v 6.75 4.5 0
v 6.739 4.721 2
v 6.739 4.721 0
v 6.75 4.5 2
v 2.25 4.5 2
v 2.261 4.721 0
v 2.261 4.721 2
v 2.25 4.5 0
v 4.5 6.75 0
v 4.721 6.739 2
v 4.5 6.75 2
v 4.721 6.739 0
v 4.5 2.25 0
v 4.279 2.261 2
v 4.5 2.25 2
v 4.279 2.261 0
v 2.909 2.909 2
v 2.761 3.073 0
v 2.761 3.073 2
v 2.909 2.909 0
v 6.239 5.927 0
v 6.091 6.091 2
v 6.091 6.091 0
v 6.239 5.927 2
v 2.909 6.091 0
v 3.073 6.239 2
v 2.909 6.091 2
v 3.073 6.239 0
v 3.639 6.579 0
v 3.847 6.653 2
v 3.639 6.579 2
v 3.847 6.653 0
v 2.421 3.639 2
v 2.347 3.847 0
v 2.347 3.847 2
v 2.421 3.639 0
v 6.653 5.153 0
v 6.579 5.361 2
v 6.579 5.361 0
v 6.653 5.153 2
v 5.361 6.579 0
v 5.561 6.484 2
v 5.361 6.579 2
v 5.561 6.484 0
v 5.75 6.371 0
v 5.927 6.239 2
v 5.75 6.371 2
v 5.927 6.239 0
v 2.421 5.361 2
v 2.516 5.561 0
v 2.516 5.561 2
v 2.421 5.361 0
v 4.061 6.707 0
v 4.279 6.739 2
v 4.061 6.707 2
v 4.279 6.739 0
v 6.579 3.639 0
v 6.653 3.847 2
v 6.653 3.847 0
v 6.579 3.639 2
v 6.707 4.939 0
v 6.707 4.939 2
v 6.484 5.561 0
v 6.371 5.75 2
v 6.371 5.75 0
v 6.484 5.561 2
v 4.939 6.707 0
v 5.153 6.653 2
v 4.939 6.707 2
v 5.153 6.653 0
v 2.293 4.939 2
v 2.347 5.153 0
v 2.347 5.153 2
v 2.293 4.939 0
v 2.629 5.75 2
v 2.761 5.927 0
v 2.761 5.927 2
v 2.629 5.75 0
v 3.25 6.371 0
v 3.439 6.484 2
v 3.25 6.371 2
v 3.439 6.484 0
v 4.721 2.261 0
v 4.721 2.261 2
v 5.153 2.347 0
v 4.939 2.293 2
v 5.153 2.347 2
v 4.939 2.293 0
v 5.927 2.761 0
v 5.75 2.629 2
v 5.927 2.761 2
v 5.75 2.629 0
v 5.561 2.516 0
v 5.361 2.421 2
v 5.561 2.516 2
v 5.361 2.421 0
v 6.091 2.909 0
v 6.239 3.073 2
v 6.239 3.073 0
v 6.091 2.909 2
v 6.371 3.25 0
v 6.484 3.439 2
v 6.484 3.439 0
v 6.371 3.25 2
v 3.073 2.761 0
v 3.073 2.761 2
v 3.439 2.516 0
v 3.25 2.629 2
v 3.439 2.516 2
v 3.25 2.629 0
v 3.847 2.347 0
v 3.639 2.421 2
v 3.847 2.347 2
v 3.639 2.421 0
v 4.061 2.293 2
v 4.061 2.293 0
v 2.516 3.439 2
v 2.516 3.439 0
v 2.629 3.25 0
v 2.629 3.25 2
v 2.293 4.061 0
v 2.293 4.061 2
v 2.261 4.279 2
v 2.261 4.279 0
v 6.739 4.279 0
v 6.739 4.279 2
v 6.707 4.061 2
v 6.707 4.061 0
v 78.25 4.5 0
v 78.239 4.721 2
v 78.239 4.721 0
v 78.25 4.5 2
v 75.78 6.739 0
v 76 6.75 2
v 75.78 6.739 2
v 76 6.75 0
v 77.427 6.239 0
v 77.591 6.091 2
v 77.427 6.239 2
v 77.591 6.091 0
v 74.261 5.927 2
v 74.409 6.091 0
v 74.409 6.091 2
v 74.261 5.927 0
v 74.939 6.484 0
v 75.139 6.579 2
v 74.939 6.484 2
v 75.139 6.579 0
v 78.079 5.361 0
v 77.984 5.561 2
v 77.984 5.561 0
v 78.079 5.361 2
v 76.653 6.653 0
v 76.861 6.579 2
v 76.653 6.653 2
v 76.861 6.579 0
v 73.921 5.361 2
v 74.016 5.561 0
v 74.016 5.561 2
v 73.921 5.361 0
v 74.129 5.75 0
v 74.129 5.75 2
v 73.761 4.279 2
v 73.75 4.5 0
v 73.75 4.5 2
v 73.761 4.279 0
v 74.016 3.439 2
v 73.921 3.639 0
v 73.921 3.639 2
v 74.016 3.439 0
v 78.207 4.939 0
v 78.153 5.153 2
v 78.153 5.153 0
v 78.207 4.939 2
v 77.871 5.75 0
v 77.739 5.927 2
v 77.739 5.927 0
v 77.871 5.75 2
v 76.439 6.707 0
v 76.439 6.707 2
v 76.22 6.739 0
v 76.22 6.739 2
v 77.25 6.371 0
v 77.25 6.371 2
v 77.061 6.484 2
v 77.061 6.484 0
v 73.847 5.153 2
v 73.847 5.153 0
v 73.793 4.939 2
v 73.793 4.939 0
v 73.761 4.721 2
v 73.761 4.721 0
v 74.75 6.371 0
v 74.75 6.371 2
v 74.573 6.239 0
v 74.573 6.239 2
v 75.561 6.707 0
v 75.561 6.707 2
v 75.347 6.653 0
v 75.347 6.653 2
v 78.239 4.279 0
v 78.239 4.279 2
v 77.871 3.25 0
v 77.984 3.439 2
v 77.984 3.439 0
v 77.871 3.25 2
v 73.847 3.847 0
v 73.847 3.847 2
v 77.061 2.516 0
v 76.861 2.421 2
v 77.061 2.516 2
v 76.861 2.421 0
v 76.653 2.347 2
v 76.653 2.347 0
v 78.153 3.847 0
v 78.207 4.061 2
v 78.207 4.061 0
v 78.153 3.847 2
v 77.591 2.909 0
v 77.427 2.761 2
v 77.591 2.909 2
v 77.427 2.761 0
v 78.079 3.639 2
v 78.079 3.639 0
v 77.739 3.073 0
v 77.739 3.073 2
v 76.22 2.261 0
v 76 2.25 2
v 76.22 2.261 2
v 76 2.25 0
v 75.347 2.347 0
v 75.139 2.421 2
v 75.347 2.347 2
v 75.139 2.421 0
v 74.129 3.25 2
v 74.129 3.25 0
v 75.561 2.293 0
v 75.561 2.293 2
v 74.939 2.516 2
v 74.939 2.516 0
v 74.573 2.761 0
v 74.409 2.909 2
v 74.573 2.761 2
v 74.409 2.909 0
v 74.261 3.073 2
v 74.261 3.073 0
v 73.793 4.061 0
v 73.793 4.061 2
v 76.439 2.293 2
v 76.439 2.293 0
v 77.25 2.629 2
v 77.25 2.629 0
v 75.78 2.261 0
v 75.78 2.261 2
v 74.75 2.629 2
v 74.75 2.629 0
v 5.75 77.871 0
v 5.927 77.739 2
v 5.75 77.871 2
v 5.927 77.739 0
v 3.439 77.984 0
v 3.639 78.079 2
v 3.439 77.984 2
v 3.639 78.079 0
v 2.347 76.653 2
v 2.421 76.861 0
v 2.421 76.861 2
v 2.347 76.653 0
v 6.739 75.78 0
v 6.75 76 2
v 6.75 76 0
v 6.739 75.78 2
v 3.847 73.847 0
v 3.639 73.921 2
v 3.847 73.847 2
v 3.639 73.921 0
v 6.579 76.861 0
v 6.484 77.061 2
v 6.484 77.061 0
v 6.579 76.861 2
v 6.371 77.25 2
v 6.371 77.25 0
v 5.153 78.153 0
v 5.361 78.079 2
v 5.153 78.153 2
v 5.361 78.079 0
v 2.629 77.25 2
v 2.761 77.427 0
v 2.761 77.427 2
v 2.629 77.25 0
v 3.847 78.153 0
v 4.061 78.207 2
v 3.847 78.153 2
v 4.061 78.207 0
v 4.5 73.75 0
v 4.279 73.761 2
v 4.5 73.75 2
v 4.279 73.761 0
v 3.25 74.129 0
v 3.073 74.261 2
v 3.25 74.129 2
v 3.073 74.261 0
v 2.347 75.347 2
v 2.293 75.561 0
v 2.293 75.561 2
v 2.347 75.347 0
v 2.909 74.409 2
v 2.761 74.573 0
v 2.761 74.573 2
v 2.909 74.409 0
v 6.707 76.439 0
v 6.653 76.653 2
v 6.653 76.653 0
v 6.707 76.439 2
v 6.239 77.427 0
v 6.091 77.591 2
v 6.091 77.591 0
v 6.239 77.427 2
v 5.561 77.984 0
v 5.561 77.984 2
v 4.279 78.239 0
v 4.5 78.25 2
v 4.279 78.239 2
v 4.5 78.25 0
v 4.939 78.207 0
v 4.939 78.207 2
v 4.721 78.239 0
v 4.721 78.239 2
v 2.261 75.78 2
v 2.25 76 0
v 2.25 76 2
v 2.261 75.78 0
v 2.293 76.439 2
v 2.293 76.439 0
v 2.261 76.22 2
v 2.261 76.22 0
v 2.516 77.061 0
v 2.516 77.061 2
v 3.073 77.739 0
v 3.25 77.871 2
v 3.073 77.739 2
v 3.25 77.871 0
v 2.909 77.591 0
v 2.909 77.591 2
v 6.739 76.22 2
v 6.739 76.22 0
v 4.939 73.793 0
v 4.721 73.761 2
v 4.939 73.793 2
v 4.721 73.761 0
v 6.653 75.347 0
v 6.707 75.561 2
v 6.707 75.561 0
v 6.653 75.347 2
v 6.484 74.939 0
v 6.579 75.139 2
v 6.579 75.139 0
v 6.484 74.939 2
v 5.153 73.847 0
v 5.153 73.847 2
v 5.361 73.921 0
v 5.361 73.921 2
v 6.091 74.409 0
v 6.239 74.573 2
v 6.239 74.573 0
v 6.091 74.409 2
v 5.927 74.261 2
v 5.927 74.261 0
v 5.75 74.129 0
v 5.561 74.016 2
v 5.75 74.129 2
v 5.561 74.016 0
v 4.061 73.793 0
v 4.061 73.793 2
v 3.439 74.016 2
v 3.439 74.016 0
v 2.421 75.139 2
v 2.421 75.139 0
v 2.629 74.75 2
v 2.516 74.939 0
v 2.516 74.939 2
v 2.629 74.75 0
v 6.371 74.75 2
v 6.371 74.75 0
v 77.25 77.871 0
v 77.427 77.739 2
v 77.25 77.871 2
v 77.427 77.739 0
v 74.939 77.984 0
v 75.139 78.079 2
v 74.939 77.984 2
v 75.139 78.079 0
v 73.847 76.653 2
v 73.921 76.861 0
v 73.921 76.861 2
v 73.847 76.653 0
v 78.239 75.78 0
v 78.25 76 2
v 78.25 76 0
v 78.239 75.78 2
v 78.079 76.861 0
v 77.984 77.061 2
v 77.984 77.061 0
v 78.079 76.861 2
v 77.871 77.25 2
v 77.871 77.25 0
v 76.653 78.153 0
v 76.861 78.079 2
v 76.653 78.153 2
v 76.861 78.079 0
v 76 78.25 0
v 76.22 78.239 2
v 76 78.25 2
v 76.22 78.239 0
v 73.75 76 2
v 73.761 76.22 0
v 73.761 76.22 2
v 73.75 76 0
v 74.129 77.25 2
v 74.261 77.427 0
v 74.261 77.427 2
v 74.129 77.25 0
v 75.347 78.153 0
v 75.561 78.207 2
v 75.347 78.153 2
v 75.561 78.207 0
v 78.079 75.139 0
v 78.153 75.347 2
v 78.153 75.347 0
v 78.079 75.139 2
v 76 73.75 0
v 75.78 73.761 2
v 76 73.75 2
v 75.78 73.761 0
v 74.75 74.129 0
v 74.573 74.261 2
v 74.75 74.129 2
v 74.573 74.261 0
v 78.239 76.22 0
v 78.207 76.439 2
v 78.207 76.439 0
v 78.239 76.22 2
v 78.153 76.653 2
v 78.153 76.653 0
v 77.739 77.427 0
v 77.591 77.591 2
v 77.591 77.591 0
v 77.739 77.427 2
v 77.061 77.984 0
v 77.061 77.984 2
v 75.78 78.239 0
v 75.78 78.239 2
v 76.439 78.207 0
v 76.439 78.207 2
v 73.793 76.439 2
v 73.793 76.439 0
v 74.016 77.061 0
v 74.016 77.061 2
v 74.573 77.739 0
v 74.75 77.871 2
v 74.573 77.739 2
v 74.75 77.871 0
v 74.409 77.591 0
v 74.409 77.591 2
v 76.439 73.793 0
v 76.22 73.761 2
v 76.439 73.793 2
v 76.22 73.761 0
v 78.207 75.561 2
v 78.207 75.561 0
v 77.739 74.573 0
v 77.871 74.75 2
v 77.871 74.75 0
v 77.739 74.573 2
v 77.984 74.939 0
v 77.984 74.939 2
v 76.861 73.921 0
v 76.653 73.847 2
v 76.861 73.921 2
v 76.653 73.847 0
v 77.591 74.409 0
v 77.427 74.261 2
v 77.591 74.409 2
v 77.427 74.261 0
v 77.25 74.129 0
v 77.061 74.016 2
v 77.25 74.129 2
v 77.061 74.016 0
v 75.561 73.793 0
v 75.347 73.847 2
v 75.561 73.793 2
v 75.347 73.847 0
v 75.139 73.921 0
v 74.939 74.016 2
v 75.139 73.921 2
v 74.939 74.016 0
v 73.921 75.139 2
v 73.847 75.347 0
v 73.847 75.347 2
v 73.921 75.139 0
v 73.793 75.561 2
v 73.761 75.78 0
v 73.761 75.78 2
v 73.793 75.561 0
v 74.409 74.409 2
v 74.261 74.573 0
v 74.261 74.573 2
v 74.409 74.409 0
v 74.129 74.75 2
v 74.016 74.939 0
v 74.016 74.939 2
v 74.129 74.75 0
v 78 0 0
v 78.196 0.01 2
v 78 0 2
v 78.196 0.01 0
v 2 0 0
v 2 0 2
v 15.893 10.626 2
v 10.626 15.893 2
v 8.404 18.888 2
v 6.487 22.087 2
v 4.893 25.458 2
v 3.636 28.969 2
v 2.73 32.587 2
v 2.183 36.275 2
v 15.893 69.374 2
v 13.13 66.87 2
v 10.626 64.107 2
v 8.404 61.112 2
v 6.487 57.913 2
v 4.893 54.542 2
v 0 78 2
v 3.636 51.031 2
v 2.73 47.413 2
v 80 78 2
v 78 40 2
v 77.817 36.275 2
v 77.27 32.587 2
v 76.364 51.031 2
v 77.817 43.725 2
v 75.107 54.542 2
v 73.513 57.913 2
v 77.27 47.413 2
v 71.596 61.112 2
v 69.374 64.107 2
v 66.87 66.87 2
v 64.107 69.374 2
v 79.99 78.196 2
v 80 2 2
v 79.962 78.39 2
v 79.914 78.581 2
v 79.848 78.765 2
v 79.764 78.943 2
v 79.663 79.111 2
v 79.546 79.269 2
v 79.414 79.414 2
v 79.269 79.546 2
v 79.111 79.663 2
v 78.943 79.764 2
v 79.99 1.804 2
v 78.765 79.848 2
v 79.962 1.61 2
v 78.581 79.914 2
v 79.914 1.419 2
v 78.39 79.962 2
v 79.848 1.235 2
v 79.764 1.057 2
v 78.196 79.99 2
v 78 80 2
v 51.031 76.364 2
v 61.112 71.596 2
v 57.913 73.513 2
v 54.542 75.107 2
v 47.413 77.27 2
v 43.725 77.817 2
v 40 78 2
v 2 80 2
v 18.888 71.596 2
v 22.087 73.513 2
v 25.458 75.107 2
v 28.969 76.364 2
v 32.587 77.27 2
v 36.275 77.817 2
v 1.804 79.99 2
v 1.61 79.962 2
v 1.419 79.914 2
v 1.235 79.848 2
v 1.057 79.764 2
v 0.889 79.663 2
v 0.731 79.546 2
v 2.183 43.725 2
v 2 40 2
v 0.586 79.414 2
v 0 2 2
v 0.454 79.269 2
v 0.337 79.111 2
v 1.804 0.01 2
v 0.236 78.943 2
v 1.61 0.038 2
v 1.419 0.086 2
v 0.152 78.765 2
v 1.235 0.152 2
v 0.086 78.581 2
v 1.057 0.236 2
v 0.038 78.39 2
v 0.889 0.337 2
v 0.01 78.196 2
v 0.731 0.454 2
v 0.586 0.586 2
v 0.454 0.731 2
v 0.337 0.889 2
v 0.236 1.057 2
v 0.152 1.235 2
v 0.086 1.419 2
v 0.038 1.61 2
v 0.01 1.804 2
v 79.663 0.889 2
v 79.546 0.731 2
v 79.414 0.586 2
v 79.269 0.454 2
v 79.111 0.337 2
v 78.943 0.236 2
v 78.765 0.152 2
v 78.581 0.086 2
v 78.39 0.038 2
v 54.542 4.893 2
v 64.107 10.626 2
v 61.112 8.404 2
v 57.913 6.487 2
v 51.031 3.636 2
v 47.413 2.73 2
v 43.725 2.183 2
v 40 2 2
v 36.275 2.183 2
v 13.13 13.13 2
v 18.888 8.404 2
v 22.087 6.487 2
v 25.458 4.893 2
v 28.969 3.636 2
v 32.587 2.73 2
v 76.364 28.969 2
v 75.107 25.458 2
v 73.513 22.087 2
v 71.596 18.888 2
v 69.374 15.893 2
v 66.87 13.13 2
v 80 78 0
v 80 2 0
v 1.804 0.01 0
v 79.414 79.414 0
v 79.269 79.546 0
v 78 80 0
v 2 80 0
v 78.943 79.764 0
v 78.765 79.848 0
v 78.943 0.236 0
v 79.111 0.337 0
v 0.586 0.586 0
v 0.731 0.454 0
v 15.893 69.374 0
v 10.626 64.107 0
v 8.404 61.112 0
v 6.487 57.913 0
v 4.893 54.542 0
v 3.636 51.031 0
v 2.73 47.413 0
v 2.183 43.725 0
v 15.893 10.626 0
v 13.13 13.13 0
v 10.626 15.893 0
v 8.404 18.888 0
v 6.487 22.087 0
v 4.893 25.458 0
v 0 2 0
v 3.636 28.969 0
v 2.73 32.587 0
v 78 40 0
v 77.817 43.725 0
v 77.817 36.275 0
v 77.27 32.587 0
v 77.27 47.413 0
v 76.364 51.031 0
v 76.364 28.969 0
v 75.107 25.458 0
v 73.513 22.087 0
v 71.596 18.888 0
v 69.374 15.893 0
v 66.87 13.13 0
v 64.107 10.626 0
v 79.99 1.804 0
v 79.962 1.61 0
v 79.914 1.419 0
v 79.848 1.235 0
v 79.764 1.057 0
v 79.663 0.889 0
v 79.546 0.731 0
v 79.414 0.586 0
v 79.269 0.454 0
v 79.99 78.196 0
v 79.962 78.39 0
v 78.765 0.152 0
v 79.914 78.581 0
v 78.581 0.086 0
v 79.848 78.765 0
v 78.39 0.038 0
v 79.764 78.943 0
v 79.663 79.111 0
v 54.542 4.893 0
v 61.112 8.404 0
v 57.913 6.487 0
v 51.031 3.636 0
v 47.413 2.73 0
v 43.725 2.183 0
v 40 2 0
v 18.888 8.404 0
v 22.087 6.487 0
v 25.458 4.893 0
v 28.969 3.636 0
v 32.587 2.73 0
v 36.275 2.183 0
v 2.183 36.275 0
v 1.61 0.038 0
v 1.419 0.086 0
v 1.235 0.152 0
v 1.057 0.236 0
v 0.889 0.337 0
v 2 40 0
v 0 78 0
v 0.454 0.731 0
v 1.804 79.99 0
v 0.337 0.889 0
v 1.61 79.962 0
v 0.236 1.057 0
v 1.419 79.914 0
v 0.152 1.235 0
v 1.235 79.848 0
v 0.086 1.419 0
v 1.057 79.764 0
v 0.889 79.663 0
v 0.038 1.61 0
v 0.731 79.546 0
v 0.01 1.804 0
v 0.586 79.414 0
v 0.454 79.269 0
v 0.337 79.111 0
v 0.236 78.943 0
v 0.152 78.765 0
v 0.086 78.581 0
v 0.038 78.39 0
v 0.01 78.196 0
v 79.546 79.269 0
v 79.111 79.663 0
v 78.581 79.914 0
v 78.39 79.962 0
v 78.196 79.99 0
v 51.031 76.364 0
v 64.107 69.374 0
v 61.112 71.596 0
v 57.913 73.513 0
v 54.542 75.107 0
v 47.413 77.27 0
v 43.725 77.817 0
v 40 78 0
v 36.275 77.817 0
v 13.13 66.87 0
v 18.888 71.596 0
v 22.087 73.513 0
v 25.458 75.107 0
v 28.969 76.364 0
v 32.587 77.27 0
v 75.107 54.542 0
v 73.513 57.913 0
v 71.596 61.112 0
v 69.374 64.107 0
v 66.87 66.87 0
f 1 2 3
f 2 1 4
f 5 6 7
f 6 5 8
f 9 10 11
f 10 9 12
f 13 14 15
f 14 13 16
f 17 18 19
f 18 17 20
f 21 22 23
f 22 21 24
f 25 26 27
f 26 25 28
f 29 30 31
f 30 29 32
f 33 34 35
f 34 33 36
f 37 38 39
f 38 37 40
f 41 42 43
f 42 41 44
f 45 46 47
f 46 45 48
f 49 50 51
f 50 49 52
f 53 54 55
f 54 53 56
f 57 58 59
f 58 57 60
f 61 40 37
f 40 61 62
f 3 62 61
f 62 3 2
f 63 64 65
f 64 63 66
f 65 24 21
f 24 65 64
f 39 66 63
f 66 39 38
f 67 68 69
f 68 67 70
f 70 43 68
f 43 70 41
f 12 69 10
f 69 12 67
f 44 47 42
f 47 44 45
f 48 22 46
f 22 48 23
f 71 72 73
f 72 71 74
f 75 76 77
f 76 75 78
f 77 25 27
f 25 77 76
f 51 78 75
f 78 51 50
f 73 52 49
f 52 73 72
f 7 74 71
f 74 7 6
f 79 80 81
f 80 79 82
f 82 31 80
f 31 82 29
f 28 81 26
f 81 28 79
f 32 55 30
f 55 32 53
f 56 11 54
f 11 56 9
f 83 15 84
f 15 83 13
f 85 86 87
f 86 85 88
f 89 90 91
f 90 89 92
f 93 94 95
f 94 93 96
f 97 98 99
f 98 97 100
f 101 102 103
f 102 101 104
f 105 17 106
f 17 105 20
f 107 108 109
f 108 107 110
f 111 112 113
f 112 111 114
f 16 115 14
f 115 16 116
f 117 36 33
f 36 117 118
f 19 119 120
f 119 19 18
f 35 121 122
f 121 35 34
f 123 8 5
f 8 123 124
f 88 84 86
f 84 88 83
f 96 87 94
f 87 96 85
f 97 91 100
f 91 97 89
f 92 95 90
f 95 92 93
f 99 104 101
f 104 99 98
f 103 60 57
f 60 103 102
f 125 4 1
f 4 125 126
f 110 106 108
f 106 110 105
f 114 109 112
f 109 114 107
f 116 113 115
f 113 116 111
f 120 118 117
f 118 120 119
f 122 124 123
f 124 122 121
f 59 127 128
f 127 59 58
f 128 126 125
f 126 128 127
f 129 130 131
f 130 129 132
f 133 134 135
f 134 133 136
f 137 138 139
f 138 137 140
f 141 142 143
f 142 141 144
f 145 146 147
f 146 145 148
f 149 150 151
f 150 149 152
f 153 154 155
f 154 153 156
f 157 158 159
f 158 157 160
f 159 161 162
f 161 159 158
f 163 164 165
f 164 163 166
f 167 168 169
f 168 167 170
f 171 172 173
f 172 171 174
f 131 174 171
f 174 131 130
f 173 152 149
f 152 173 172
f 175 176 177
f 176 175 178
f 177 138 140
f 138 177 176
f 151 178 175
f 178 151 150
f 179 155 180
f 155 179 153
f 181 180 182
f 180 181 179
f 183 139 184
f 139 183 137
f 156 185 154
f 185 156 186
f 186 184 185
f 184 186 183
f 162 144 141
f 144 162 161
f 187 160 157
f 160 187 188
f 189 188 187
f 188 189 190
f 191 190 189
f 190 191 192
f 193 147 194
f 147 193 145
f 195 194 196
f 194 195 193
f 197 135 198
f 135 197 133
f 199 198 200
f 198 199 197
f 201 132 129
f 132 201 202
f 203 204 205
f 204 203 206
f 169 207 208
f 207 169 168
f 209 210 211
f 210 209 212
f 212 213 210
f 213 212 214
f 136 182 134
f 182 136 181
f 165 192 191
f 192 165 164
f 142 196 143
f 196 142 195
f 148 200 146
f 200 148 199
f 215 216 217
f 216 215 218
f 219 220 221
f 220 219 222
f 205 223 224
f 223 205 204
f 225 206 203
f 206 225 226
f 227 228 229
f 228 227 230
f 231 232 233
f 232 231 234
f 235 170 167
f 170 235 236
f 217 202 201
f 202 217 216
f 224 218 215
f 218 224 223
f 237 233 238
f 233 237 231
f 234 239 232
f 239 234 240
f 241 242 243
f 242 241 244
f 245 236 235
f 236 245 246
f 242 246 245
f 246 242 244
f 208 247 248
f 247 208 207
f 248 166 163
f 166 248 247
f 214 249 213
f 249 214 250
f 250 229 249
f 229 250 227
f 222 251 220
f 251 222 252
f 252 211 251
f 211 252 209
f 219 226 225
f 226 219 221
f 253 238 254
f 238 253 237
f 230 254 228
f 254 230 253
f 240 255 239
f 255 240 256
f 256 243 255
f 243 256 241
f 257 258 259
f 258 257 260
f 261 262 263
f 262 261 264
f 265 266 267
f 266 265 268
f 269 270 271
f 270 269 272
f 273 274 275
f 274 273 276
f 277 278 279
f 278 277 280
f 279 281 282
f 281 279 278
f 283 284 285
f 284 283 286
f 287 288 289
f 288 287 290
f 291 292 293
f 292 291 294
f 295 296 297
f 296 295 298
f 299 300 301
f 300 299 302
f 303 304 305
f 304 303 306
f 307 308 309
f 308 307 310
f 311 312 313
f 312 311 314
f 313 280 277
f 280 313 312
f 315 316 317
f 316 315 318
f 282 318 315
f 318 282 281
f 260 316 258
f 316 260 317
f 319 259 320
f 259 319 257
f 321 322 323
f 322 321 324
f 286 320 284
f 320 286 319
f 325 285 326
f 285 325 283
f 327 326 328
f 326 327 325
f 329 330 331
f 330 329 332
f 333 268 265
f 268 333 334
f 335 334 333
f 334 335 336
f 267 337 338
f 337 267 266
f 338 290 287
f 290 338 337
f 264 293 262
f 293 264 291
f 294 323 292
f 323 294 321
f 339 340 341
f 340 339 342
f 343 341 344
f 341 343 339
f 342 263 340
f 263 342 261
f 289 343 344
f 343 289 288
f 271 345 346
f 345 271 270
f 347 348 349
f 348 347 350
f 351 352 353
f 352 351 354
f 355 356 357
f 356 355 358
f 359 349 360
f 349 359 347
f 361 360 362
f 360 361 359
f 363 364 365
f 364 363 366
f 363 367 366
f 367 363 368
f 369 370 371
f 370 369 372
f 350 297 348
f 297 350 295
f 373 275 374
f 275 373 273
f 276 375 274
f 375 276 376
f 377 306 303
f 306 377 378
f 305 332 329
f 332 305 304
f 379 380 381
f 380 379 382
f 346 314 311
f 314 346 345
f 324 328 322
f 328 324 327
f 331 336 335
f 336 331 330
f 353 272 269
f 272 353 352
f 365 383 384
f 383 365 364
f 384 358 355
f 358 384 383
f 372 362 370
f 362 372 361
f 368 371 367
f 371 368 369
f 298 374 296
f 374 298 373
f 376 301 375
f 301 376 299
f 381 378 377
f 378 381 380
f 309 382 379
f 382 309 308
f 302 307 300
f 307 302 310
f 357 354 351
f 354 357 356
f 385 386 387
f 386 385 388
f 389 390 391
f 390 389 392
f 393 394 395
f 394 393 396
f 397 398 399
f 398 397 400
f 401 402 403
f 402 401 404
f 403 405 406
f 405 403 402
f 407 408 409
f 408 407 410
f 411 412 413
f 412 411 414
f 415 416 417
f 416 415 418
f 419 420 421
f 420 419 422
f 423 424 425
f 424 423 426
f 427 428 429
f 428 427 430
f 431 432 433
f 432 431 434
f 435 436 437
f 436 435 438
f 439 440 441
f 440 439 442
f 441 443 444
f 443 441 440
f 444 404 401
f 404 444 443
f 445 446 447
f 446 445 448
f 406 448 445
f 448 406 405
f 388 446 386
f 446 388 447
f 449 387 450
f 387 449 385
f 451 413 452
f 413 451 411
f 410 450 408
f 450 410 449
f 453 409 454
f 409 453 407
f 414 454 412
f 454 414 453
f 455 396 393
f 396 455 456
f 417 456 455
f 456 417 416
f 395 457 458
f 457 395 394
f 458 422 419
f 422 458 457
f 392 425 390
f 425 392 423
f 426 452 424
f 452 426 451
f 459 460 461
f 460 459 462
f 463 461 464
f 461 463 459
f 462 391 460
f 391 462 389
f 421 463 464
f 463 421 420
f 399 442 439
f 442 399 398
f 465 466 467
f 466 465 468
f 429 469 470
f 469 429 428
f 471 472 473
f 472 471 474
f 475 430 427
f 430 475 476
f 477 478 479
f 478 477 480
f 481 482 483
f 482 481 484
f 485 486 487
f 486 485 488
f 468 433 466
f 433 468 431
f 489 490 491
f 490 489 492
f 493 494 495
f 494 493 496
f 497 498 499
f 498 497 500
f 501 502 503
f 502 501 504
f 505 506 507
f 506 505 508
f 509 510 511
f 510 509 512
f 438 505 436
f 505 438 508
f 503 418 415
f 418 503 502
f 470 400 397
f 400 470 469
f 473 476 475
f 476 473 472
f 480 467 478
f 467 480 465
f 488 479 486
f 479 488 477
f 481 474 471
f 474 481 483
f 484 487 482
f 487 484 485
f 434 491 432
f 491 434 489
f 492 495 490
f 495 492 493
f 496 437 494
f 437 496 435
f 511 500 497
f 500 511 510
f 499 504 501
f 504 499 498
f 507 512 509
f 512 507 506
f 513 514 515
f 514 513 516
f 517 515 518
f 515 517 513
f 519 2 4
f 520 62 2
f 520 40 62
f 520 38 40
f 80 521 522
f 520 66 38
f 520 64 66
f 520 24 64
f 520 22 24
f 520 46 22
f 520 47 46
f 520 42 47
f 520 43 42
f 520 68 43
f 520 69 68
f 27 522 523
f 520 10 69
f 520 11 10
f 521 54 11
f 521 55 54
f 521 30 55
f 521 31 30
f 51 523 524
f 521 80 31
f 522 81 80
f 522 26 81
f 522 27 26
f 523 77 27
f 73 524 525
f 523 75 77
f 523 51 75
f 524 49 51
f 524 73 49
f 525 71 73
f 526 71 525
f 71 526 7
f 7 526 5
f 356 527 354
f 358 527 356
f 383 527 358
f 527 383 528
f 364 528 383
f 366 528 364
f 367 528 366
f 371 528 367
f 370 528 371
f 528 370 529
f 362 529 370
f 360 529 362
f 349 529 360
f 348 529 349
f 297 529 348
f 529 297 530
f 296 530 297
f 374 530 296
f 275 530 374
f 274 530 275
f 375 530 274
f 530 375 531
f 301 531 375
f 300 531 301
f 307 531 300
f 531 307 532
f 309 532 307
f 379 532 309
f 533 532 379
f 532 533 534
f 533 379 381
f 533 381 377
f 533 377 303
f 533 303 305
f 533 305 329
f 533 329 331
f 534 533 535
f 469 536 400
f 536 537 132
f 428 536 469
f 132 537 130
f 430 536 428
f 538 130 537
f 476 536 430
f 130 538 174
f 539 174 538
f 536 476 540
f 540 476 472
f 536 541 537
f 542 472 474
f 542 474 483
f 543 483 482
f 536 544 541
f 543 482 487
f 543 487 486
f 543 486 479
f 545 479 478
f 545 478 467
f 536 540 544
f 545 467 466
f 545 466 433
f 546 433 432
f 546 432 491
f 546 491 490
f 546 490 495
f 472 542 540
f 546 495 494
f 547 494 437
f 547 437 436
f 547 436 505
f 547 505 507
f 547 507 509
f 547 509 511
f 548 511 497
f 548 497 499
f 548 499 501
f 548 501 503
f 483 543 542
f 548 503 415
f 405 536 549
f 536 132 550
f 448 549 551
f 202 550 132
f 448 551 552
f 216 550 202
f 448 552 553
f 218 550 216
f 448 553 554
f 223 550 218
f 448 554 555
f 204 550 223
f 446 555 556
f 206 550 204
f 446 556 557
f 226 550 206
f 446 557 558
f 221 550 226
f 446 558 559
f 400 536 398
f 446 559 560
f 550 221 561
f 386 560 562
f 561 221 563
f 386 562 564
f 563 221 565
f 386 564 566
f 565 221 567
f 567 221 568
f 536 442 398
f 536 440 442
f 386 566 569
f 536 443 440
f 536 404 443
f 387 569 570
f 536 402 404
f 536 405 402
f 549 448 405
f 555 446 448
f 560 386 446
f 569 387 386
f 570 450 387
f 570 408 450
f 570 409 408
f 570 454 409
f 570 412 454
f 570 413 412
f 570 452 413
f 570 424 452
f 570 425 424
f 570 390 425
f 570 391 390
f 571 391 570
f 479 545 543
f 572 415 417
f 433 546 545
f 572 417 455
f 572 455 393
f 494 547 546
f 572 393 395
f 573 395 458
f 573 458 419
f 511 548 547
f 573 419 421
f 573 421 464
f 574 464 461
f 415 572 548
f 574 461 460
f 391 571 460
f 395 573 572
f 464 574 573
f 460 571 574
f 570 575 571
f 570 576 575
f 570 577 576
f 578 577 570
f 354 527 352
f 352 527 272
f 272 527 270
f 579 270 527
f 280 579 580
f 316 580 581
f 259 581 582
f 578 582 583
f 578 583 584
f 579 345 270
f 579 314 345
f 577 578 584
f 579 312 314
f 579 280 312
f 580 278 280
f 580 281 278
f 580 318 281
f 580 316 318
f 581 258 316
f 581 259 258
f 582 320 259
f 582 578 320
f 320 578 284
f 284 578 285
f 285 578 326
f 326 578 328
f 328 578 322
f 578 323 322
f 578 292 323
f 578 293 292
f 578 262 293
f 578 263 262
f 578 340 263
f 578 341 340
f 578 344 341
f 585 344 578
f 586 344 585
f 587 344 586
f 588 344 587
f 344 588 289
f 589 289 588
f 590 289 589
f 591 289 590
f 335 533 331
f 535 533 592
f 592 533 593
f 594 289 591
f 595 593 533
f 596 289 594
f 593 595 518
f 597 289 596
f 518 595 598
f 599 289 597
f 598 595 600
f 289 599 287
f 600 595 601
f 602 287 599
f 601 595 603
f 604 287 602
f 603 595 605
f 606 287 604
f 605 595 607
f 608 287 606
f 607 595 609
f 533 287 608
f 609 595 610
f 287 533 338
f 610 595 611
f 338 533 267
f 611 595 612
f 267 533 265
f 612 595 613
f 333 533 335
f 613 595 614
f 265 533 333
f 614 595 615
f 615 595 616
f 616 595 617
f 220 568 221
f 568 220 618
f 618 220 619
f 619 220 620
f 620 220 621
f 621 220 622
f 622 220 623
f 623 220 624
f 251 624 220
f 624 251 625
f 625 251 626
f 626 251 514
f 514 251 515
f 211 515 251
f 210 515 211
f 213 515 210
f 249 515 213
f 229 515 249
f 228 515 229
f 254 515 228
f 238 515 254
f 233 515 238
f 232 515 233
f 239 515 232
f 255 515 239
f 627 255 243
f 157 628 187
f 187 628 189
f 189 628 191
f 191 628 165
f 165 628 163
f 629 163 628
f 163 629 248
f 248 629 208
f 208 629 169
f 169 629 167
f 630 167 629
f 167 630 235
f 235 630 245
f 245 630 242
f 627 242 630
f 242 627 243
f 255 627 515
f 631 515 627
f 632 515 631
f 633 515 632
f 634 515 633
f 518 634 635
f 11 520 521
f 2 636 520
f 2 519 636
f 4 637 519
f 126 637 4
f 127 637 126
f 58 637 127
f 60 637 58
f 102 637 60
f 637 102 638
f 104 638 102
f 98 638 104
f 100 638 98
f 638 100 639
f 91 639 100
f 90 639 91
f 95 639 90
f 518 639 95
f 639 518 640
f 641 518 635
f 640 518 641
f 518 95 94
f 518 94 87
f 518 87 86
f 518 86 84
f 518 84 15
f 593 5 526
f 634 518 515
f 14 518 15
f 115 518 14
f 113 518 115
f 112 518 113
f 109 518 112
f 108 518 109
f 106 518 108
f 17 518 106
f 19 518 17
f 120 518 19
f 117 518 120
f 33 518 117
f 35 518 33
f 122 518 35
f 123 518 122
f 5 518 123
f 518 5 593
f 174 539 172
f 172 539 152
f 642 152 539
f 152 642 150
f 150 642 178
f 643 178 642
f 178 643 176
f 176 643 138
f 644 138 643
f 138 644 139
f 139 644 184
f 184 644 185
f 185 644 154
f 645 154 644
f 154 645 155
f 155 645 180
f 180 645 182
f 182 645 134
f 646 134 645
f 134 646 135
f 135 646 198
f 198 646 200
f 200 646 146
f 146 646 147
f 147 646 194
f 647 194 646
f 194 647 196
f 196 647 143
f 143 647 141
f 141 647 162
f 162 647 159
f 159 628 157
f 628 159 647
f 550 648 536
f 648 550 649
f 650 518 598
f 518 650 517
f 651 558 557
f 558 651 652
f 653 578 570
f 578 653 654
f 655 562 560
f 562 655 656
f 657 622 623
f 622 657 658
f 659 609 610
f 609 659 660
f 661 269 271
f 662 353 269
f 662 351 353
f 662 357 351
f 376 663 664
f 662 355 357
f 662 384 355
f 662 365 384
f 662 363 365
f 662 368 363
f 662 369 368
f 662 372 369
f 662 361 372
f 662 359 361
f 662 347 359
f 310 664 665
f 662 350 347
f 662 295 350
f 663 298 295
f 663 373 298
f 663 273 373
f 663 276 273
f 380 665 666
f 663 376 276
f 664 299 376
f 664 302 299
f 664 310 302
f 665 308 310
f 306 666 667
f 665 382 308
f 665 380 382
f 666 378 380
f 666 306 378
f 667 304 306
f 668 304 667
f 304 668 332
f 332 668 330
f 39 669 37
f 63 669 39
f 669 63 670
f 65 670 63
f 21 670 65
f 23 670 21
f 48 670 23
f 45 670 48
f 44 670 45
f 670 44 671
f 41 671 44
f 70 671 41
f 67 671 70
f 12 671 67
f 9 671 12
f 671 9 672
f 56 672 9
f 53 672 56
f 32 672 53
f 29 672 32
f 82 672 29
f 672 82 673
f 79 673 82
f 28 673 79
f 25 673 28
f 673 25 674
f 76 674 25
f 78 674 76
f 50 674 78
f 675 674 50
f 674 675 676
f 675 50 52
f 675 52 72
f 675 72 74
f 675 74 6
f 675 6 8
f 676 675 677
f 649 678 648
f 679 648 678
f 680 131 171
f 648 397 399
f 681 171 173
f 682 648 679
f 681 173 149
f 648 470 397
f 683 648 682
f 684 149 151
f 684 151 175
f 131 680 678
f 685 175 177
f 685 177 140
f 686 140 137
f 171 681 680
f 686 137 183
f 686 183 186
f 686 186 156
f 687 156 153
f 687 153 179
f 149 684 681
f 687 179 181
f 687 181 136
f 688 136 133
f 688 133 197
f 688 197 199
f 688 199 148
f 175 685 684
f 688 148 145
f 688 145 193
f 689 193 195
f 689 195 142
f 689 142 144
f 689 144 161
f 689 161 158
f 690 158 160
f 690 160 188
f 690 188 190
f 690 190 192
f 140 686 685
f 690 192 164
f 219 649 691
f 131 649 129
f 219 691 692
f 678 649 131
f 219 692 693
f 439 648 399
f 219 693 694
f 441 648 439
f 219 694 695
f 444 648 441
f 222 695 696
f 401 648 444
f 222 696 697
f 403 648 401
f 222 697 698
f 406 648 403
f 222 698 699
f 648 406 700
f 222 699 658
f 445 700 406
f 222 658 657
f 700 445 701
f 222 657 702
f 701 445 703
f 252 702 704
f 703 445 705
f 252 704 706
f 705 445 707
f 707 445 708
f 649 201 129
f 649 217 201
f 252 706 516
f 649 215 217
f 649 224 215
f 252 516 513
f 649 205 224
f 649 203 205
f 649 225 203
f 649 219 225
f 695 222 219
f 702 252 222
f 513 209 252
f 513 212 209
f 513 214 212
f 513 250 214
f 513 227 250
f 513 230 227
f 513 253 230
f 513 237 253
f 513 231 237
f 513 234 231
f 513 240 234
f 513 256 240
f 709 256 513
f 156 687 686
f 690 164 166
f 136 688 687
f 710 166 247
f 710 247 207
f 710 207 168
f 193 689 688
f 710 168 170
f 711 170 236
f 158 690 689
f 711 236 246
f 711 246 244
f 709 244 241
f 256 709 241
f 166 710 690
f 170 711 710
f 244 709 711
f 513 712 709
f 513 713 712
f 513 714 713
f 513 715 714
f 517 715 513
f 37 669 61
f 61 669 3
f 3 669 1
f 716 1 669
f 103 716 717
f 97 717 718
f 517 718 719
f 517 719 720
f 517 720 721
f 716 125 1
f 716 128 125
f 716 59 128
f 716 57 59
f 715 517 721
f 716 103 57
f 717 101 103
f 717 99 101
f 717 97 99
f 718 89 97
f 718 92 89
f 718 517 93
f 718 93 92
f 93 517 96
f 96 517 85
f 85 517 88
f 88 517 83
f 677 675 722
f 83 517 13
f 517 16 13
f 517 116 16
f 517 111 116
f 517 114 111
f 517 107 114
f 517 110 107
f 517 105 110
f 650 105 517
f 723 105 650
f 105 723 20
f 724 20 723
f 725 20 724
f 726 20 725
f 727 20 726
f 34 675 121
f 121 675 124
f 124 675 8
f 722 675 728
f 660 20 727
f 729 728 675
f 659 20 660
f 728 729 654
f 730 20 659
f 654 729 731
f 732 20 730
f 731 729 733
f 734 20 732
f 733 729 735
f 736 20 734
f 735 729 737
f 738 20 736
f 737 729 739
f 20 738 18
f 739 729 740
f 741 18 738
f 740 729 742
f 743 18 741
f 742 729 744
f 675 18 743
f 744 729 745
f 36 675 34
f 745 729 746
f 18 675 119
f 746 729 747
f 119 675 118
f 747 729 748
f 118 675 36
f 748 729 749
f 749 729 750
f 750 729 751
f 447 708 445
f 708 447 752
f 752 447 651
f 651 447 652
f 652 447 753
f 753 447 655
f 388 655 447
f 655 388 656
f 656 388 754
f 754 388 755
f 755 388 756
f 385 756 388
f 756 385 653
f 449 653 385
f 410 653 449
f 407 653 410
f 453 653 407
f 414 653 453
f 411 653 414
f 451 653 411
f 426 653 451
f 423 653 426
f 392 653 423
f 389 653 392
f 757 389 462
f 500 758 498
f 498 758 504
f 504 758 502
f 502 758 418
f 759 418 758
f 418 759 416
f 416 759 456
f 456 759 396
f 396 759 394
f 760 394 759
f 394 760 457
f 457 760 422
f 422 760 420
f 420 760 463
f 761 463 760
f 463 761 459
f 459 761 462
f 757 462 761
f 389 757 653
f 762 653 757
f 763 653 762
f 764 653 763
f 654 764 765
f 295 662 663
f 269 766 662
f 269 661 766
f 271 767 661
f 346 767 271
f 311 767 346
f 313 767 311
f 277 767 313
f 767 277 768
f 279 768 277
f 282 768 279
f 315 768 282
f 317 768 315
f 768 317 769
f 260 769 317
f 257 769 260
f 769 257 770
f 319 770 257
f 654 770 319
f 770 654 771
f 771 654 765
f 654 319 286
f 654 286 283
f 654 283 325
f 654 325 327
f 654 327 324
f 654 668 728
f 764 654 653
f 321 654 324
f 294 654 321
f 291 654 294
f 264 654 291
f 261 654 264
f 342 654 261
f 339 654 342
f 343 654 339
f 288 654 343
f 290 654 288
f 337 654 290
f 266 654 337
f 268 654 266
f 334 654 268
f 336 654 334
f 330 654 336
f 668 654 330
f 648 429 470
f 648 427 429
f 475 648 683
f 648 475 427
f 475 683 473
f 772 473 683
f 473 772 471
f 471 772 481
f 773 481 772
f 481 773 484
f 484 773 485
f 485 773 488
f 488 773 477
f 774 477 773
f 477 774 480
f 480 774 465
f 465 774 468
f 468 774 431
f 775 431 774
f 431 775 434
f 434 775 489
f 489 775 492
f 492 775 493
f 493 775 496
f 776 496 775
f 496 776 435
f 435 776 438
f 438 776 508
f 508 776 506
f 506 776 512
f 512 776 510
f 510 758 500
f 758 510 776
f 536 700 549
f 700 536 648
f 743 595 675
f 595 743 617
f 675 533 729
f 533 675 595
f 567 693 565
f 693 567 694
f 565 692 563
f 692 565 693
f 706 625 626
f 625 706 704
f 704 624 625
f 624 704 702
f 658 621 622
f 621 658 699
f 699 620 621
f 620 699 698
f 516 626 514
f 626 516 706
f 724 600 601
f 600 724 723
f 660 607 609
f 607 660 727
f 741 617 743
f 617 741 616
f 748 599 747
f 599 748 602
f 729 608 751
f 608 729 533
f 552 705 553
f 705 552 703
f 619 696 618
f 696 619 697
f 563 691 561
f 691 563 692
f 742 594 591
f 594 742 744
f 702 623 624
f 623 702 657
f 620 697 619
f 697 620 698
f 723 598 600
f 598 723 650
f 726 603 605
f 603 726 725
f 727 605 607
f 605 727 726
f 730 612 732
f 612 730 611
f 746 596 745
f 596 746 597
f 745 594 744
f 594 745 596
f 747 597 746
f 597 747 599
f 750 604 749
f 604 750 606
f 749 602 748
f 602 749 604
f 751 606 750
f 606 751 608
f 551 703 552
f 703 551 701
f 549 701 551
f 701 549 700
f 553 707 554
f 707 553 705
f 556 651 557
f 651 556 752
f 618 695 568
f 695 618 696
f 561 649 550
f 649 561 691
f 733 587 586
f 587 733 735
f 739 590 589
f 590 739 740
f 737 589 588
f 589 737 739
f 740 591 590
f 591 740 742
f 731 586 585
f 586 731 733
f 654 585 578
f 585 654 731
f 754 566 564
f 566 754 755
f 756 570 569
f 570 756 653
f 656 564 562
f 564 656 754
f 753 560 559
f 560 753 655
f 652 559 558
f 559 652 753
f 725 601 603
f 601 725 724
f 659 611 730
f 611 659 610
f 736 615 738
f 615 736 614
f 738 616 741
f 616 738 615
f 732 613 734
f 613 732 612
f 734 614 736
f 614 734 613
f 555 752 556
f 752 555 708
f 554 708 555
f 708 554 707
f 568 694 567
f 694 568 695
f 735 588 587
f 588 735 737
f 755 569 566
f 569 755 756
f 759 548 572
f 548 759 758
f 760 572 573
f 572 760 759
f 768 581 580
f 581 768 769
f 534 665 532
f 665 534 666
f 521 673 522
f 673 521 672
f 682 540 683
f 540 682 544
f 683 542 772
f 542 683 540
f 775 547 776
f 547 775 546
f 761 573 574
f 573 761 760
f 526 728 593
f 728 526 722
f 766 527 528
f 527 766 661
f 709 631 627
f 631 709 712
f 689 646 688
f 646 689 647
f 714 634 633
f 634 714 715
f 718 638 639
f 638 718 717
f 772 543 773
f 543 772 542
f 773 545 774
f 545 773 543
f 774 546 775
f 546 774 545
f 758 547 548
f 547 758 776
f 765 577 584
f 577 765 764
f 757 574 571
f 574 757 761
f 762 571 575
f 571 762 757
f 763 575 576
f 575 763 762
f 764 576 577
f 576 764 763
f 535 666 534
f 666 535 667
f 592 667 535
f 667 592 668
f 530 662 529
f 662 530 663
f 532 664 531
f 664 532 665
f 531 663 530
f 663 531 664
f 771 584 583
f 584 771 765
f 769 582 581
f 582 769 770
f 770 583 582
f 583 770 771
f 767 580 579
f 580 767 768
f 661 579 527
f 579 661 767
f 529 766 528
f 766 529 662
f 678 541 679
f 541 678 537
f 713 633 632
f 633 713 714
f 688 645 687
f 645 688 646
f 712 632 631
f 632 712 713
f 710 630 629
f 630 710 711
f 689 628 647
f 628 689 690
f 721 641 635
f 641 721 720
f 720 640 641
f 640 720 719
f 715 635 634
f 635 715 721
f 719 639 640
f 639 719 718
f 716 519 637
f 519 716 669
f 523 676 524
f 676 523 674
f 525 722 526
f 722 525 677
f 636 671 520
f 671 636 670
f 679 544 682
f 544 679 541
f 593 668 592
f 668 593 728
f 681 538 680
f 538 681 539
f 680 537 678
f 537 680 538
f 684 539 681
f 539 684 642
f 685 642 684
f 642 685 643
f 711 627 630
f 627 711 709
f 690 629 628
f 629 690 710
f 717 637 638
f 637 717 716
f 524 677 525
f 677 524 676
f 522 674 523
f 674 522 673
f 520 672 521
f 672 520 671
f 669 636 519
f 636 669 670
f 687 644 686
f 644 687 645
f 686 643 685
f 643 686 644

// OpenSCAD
totalHeight = 2;
totalWidth = 80;
holePatternWidth = 71.5;
holeDiameter = 4.5;

module outerEdge(borderRadius) {
    difference() {
        hull() {
            translate([borderRadius/2,borderRadius/2,0]) cylinder(d=borderRadius,h=totalHeight,$fn=64);
            translate([totalWidth-borderRadius/2,borderRadius/2,0]) cylinder(d=borderRadius,h=totalHeight,$fn=64);
            translate([borderRadius/2,totalWidth-borderRadius/2,0]) cylinder(d=borderRadius,h=totalHeight,$fn=64);
            translate([totalWidth-borderRadius/2,totalWidth-borderRadius/2,0]) cylinder(d=borderRadius,h=totalHeight,$fn=64);
        }
    }
}

module holePattern() {
    translate([holeDiameter,holeDiameter,-1]) {
        cylinder(d=holeDiameter,h=totalHeight+2,$fn=64);
        translate([holePatternWidth,0,0]) cylinder(d=holeDiameter,h=totalHeight+2,$fn=64);
        translate([0,holePatternWidth,0]) cylinder(d=holeDiameter,h=totalHeight+2,$fn=64);
        translate([holePatternWidth,holePatternWidth,0]) cylinder(d=holeDiameter,h=totalHeight+2,$fn=64);
    }
}

module centerHole() {
    translate([totalWidth/2,totalWidth/2,-1]) {
        cylinder(d=holePatternWidth+holeDiameter,h=totalHeight+2,$fn=64);
    }
}

difference() {
    outerEdge(4);
    holePattern();
    centerHole();
}
